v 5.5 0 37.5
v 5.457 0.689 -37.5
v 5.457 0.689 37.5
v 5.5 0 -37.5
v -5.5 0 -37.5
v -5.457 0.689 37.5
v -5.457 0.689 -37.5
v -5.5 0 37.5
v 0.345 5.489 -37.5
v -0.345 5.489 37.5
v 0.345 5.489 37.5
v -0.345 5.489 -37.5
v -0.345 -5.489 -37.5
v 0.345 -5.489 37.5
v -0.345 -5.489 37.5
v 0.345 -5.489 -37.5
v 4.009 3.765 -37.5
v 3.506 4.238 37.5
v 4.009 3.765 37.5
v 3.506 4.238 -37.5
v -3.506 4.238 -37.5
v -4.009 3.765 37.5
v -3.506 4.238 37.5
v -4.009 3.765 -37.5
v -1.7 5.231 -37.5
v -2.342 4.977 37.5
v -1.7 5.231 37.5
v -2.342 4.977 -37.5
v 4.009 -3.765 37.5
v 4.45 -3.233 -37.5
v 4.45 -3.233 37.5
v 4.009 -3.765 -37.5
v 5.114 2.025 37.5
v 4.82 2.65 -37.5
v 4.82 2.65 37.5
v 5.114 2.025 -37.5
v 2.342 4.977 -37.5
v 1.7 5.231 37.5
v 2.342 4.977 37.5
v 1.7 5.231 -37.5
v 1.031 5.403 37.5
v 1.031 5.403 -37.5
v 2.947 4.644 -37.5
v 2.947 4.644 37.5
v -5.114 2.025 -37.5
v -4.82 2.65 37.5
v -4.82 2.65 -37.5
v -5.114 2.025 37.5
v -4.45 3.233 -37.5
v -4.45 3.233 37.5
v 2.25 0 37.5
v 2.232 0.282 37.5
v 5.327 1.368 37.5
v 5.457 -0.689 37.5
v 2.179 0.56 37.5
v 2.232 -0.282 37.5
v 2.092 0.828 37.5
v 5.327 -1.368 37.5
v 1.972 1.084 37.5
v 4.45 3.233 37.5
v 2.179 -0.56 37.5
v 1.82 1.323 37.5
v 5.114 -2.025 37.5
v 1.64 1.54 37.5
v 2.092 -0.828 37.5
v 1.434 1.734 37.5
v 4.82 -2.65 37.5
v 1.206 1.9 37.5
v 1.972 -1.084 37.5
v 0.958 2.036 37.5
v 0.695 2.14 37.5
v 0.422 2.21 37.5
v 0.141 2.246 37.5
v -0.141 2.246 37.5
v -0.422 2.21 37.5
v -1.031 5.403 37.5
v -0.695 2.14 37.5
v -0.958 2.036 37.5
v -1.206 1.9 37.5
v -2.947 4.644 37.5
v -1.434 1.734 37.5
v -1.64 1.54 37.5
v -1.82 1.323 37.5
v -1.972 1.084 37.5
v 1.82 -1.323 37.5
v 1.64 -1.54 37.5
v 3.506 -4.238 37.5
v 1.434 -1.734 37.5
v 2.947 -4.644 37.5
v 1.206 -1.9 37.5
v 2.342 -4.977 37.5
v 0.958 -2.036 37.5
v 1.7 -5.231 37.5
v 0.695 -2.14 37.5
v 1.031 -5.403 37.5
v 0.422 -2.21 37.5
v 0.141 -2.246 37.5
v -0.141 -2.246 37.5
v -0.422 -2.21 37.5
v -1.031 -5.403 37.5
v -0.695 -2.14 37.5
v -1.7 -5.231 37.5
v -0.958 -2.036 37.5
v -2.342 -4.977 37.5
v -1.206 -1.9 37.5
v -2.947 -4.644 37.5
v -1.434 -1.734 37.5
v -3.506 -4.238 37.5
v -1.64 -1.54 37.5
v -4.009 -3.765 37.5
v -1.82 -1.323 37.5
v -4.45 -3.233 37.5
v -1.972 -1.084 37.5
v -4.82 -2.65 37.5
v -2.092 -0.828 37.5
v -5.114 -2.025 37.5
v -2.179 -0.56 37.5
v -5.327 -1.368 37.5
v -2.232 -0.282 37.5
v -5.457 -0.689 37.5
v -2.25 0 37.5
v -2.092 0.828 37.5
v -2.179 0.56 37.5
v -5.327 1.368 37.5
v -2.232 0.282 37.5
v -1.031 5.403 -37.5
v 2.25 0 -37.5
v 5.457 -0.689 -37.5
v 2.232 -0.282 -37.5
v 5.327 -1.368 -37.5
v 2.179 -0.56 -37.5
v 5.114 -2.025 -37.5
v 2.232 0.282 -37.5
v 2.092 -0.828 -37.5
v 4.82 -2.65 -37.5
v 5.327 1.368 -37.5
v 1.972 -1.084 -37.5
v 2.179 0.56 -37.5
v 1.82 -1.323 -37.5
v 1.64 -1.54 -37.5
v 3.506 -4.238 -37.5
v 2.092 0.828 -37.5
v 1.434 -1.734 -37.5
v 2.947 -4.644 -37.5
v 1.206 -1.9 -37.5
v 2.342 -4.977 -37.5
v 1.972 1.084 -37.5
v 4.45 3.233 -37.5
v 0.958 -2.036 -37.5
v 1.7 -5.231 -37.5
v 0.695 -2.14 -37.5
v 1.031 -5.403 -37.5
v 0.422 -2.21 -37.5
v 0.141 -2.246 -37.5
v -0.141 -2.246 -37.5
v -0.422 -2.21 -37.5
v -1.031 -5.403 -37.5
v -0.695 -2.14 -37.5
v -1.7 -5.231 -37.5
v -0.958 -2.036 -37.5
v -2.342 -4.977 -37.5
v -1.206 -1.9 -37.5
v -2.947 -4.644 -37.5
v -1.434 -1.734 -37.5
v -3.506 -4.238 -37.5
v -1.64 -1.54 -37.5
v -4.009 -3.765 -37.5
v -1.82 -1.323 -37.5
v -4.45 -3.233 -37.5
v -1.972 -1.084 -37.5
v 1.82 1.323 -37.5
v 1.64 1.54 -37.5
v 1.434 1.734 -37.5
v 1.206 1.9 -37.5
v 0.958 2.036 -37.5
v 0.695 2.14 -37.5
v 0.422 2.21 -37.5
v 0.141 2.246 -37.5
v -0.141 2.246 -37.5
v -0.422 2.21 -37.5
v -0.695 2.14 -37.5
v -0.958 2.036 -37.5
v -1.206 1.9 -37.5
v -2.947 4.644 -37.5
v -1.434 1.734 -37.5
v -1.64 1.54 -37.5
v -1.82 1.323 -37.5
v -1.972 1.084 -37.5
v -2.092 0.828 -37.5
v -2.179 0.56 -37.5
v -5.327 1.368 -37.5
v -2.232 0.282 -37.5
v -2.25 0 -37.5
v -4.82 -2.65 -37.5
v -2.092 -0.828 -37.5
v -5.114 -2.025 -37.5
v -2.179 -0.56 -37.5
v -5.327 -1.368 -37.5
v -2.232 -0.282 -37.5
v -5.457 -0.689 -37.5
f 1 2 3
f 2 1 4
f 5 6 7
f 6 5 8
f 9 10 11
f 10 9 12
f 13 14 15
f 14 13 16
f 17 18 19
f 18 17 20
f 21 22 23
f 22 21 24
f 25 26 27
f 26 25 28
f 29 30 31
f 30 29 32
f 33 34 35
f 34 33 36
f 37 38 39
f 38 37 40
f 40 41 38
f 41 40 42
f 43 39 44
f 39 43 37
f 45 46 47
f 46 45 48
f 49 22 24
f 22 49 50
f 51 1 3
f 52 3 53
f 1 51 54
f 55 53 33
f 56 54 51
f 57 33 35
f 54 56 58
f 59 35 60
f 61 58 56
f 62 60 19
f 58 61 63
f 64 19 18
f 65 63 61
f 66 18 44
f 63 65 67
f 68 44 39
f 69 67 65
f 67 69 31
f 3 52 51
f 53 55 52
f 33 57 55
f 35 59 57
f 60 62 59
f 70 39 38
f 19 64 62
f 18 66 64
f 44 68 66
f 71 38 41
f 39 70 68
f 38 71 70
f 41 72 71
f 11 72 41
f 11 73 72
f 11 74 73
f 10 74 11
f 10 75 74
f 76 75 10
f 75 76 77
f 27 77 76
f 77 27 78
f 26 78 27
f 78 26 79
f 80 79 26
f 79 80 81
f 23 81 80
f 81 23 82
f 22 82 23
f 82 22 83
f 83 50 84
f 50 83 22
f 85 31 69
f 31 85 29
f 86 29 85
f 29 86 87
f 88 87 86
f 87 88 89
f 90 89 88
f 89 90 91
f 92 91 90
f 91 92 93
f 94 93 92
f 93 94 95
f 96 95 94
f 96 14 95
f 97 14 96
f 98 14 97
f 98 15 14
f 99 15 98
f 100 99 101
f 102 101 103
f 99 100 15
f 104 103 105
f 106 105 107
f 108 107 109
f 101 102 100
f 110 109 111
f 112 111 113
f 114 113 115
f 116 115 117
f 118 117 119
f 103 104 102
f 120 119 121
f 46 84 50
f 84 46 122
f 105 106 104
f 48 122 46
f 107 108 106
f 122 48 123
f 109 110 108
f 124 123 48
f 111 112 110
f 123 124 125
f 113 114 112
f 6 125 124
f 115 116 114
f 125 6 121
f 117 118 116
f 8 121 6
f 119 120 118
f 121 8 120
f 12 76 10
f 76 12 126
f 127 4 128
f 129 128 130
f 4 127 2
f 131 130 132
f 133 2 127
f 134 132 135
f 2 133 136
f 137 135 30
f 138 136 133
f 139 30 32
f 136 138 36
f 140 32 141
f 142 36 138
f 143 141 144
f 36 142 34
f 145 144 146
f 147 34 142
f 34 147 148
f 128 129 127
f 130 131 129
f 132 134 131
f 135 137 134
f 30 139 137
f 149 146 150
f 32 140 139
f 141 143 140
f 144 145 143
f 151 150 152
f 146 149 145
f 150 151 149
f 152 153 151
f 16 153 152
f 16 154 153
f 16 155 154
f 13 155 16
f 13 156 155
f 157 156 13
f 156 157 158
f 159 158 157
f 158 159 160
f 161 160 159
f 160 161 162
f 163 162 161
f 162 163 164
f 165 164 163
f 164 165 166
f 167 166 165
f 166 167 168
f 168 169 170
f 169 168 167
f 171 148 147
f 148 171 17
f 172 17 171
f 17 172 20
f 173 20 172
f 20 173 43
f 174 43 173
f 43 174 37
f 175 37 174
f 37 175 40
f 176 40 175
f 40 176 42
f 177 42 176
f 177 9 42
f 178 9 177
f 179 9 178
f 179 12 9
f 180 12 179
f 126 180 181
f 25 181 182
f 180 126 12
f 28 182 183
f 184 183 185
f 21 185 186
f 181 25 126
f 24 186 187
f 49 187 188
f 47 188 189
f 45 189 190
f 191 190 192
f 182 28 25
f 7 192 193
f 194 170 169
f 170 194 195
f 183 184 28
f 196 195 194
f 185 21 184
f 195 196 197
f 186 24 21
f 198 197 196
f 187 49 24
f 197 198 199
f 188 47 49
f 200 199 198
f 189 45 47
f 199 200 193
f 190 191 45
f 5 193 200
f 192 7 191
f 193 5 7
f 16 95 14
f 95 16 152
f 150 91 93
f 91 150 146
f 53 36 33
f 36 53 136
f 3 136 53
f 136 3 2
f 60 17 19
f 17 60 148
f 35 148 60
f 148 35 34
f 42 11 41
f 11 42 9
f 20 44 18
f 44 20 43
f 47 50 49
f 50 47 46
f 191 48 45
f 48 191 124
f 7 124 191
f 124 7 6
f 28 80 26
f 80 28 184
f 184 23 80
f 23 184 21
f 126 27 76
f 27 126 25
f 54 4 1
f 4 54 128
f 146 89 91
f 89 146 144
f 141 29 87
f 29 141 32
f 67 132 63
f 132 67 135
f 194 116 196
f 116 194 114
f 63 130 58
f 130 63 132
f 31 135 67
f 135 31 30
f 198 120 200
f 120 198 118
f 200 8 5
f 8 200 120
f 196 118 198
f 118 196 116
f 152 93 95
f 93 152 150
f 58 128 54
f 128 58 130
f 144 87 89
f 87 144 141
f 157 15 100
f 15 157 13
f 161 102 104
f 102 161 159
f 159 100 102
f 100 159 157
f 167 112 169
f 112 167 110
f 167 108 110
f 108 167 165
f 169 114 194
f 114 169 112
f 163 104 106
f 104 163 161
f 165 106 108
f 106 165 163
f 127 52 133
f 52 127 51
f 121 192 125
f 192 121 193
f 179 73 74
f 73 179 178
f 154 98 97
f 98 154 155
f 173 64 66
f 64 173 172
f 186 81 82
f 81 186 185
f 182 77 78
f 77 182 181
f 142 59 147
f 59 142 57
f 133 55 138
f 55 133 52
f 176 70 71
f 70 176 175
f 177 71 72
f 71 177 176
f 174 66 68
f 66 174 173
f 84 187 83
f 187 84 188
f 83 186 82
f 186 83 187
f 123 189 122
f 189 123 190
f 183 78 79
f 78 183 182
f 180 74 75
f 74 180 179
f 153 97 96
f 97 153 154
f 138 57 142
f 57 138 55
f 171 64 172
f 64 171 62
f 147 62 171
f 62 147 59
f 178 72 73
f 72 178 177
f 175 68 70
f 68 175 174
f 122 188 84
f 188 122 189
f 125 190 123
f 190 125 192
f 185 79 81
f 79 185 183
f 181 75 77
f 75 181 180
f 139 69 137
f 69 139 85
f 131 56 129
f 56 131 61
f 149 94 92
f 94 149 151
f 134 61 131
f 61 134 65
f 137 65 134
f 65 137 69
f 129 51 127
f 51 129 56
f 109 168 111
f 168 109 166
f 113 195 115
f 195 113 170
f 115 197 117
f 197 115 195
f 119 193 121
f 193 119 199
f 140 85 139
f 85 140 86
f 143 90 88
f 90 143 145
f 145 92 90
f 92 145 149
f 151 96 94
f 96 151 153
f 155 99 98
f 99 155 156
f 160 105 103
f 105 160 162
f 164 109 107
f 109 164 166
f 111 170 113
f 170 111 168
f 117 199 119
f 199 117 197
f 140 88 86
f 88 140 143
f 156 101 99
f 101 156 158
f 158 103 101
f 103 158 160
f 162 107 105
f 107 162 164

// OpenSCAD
$fn = 50;


difference() {
	union() {
		translate(v = [0, 0, -37.5000000000]) {
			cylinder(h = 75, r = 5.5000000000);
		}
	}
	union() {
		translate(v = [0, 0, -100.0000000000]) {
			cylinder(h = 200, r = 2.2500000000);
		}
	}
}
